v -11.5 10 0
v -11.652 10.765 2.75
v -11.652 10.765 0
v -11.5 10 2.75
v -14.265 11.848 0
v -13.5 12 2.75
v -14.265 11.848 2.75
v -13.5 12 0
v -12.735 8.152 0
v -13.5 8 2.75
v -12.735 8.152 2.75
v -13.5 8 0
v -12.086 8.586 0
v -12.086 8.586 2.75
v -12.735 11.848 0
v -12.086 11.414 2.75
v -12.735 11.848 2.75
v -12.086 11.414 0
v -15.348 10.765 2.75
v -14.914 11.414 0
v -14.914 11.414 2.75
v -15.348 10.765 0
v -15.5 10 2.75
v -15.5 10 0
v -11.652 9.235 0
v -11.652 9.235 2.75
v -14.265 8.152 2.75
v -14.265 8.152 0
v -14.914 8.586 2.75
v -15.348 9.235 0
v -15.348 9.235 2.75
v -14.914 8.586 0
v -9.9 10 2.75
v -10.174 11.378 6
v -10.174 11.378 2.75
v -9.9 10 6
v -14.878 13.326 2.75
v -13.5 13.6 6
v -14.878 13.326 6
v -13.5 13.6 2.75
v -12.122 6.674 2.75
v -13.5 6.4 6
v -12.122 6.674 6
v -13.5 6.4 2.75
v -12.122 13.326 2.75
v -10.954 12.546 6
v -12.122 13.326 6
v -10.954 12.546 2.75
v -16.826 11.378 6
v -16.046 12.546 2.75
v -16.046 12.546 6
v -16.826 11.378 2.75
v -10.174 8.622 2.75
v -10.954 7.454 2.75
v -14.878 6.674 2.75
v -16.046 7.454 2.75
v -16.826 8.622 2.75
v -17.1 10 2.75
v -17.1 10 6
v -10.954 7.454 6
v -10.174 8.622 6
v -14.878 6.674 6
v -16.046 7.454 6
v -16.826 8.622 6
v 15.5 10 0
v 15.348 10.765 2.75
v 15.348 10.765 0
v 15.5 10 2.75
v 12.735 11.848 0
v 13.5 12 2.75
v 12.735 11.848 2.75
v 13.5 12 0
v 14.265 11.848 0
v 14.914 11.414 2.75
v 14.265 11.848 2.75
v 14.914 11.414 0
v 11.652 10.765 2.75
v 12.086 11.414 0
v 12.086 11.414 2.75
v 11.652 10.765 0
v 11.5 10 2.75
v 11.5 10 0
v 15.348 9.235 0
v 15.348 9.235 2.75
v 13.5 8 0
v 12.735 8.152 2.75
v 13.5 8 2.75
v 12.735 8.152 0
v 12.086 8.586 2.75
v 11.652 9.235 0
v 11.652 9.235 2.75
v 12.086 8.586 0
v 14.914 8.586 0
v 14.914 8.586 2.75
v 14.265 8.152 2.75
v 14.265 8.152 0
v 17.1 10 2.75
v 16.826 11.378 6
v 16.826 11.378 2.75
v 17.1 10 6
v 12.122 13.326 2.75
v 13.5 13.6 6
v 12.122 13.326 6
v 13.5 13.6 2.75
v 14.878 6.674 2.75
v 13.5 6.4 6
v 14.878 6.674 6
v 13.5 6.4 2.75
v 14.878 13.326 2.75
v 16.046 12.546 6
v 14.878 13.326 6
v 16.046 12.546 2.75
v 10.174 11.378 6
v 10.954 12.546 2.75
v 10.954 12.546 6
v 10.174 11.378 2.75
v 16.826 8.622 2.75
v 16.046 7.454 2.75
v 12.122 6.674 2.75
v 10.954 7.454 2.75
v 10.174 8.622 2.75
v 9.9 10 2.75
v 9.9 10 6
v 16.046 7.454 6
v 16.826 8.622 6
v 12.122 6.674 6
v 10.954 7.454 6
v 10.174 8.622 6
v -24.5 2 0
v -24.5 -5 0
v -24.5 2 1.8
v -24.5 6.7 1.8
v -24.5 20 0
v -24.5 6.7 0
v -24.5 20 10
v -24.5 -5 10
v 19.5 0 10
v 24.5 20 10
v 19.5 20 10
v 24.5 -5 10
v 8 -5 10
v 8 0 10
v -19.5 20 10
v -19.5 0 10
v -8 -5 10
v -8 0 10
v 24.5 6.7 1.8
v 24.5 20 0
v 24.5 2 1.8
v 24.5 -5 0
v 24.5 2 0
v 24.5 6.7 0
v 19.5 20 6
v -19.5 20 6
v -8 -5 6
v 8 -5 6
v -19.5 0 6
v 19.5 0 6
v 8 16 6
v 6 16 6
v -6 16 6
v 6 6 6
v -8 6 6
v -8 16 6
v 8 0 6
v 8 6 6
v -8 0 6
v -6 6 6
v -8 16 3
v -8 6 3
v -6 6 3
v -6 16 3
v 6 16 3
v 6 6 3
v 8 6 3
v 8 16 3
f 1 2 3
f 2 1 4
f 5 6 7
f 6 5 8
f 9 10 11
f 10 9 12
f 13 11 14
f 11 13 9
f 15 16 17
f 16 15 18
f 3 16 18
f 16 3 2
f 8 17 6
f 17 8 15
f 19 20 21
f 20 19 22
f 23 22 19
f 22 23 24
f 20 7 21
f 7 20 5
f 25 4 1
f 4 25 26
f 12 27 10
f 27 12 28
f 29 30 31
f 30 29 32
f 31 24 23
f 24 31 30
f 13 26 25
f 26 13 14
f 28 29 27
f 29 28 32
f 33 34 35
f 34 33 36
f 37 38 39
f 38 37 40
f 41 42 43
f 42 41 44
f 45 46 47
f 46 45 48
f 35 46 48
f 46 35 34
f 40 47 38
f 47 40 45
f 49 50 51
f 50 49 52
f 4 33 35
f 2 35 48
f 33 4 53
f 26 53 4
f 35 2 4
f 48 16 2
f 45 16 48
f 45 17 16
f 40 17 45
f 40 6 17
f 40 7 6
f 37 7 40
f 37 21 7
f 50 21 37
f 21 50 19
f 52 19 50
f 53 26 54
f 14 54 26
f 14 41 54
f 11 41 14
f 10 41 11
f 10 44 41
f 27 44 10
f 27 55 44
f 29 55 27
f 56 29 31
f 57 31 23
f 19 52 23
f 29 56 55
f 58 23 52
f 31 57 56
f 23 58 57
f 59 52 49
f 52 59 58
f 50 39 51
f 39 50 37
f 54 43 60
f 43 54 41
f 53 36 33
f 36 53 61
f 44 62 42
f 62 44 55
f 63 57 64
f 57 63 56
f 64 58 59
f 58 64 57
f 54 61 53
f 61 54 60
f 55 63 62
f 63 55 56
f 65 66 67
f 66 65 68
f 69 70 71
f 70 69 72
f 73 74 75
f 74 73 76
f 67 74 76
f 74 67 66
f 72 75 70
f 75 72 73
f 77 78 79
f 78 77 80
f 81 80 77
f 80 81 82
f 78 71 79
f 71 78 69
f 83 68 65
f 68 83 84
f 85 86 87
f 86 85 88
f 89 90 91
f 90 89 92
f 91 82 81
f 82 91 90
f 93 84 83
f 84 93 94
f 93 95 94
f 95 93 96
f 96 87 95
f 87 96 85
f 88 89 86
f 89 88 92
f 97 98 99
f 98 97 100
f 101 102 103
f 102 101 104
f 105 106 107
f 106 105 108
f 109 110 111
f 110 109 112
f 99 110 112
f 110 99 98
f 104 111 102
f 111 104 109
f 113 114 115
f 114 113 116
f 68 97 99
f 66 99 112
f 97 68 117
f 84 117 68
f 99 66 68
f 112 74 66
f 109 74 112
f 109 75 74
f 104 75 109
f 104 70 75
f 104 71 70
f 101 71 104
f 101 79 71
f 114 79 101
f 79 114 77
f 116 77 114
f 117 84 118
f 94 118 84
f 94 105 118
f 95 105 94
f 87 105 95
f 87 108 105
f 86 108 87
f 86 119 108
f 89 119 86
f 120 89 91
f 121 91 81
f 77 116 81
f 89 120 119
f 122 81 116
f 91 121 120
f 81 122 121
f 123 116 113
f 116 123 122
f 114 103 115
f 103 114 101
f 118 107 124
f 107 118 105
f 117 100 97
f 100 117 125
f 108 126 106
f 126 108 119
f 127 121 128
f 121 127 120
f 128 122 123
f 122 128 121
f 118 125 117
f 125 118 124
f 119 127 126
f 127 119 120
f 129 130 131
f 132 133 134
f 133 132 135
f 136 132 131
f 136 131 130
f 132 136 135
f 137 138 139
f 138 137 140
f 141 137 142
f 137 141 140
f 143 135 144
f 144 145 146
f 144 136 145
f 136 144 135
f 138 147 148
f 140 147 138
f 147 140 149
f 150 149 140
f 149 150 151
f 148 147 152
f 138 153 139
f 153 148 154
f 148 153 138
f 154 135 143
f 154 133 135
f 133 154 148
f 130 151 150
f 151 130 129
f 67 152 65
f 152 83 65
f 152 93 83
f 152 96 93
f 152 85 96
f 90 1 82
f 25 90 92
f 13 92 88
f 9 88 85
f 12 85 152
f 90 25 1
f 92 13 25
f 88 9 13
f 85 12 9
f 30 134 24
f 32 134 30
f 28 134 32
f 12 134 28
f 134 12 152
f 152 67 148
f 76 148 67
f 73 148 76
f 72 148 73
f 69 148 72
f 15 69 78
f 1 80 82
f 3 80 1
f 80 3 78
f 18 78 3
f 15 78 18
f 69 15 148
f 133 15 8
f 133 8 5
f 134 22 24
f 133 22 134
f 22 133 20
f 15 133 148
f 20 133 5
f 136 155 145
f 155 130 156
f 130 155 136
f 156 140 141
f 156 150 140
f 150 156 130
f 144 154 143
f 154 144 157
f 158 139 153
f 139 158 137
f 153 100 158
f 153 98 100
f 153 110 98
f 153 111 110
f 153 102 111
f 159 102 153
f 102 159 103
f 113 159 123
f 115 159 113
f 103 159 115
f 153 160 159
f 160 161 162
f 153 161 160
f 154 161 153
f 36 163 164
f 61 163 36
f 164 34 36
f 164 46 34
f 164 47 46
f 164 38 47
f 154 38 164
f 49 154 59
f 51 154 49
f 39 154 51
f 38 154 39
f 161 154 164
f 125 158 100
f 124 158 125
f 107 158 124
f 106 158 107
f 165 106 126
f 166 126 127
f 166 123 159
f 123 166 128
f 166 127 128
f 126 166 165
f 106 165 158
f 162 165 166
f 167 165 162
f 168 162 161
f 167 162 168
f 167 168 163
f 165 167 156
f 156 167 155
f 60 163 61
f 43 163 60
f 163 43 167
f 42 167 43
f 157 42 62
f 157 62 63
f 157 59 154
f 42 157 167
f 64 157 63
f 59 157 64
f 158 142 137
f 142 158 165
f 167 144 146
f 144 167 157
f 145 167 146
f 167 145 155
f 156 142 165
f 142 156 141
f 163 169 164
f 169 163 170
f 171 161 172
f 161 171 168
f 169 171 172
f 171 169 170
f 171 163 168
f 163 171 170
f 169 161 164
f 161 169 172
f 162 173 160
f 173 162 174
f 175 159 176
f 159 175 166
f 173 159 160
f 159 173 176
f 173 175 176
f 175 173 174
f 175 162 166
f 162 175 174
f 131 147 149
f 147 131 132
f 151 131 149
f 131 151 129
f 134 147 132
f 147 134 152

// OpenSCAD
// Base is 49mm wide, 25mm deep
// Body is 39mm wide
// Tab is 16mm wide
// Locks are 6mm from back, 12mm from side, 10mm long

module screw (x, y)
{
  translate ([x, y, 0]) {
    cylinder (h=10, d=4.0, $fn=16, center=true);
  }
  translate ([x, y, 5]) {
    cylinder (h=4.5, d=7.2, $fn=16, center=true);
  }
}

translate ([-24.5, -5, 0]) {
  difference () {
    
    // Floor
    cube ([49, 25, 10]);

    // Main body of PSU cutout
    translate ([5, 5, 6]) {
      cube ([39, 20, 4]);
    }
    
    // Tab cutout
    translate ([16.5, 0, 6]) {
      cube ([16, 8, 4]);
    }

    // Slots
    translate ([16.5, 11, 3]) {
      cube ([2, 10, 4]);
    }
    translate ([30.5, 11, 3]) {
      cube ([2, 10, 4]);
    }
    
    // Screw hole & head recess
    screw (11, 15);
    screw (38, 15);
    
    // Tie-wrap slot
    translate ([0, 7, 0]) {
      cube ([49, 4.7, 1.8]);
    }
  } 
}
